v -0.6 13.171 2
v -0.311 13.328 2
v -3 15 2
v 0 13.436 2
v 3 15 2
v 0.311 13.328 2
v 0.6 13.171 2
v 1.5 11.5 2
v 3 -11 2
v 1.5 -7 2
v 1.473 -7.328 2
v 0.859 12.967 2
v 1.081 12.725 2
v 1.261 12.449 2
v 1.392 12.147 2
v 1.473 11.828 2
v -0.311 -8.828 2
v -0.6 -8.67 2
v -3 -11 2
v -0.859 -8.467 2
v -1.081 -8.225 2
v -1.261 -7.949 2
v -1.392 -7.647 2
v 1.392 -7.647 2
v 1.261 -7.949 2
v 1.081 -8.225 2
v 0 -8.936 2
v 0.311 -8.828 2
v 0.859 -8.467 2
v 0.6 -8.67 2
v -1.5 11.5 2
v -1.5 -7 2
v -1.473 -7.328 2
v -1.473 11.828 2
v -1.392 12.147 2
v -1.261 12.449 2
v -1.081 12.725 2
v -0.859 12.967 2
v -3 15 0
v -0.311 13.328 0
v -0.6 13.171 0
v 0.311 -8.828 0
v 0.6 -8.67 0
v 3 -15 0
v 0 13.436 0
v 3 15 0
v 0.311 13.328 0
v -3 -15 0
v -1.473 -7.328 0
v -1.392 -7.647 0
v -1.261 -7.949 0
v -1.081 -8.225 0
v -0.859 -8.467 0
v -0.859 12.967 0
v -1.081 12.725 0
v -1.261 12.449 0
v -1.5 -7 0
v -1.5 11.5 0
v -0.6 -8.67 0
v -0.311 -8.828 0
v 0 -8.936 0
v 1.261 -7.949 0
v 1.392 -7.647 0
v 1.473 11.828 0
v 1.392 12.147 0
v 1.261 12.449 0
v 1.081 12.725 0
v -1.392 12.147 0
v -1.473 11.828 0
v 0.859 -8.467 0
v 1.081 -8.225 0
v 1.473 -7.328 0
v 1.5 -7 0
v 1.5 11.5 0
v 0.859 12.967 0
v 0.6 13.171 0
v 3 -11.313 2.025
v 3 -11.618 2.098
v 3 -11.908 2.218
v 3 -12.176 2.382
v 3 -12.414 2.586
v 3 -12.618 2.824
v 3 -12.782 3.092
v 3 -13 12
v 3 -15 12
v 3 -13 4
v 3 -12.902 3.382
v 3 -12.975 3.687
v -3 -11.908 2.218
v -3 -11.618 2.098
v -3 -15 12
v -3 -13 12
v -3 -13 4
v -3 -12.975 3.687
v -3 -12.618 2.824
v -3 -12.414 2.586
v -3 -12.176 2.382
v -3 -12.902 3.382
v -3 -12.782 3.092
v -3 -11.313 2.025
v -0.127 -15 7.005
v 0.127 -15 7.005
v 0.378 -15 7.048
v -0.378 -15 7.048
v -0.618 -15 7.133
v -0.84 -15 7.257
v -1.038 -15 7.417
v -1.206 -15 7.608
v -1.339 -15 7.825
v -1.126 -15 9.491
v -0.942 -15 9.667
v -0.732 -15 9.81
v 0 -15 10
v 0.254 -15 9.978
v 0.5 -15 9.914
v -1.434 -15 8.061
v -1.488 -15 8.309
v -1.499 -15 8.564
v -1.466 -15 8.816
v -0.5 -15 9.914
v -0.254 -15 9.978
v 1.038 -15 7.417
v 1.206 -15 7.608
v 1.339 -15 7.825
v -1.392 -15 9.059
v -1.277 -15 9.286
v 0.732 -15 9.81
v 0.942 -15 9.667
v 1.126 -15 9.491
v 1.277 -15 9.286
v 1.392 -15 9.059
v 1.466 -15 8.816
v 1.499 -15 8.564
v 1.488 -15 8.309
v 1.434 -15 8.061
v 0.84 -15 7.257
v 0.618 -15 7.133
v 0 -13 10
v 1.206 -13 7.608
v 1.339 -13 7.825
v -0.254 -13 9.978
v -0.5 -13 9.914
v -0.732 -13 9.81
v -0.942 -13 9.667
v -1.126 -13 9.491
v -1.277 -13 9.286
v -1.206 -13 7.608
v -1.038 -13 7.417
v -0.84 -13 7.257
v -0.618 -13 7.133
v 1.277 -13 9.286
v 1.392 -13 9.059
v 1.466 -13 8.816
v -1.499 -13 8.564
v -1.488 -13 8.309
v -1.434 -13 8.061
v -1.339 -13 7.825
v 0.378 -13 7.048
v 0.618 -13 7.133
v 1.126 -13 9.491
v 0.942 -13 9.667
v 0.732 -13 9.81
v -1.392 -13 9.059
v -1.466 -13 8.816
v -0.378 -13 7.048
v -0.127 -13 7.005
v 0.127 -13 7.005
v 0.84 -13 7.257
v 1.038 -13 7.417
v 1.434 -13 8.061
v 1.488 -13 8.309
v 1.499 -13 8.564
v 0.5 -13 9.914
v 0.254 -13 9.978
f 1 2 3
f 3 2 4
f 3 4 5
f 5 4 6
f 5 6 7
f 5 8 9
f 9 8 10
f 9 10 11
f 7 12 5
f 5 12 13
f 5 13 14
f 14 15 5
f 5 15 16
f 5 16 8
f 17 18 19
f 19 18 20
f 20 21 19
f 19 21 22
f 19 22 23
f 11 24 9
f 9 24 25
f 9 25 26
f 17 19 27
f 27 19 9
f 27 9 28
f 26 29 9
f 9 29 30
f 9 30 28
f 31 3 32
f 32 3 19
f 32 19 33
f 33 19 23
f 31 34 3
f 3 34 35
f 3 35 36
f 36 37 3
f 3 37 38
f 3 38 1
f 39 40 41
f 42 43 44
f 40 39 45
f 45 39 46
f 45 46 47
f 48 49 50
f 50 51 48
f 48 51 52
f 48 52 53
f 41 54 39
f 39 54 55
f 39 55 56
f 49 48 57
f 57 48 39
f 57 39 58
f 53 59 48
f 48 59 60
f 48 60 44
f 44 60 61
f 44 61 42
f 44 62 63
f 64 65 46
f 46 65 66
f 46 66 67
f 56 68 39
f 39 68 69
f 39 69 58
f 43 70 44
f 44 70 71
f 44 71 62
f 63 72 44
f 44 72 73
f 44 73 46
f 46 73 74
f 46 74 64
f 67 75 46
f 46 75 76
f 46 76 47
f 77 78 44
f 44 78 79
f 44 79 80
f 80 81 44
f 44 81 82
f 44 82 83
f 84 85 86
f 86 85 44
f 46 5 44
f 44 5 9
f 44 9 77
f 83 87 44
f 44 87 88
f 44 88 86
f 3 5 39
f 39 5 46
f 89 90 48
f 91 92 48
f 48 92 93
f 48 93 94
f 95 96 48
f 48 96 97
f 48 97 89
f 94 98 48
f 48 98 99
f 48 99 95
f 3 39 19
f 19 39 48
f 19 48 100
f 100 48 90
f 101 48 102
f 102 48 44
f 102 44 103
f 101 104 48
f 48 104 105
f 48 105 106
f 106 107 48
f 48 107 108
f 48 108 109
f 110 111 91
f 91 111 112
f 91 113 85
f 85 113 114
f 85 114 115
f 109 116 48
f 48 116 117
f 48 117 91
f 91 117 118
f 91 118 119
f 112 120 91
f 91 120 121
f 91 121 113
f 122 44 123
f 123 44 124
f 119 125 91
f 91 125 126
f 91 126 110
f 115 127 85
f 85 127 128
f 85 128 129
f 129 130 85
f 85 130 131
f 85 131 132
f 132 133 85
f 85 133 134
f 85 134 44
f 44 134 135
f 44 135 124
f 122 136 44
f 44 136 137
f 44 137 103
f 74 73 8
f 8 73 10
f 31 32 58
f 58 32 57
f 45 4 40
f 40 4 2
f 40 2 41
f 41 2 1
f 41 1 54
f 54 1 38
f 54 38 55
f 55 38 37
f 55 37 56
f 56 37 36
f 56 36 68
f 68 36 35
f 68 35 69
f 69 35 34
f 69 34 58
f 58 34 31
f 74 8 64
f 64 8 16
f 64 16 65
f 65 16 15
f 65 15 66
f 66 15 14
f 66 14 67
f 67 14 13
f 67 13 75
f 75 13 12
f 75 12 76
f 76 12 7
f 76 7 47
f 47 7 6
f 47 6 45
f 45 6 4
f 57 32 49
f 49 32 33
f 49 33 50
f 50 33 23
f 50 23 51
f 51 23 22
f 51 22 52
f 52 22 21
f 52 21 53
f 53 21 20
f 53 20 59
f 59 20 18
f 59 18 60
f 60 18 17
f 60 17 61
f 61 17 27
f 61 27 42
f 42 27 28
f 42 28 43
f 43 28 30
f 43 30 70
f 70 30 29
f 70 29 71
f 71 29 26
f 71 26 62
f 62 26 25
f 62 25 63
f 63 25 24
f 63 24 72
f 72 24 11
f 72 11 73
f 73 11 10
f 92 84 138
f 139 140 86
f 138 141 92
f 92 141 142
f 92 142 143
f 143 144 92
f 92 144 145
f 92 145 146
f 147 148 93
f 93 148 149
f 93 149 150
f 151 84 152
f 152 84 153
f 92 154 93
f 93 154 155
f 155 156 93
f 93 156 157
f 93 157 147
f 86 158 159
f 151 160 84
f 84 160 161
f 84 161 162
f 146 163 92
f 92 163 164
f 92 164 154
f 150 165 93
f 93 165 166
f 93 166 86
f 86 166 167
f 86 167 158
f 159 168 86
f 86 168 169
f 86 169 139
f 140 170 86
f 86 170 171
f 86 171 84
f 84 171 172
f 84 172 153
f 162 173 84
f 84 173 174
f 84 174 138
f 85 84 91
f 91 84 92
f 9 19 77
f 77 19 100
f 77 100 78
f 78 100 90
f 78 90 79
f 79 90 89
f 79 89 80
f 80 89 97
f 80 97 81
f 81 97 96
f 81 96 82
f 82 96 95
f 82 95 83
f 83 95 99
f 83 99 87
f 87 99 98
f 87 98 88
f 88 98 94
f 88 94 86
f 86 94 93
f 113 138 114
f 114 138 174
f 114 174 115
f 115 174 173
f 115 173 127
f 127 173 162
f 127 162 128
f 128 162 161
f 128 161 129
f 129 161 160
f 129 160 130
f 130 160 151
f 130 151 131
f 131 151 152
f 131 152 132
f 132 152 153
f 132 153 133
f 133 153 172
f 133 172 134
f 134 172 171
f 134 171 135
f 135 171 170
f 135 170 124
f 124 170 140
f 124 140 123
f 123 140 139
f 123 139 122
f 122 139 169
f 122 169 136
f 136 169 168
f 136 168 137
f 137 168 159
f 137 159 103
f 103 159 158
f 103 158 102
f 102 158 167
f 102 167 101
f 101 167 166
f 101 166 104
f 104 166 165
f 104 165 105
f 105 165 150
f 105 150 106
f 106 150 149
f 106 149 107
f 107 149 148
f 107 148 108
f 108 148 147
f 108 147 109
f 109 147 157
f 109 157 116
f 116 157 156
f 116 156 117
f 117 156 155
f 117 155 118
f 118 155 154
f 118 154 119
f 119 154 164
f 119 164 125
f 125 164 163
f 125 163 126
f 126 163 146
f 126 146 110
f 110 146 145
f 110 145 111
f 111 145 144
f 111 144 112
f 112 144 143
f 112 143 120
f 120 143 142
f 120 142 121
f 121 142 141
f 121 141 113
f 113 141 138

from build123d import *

# Parameters (mm, degrees)
SKETCH1_W           = 6
SKETCH1_H           = 30
SKETCH1_W_2         = 3
SKETCH1_H_2         = 22.5
BOSS_EXTRUDE1_DEPTH = 2
FILLET1_R           = 2
SKETCH2_W           = 6
SKETCH2_H           = 2
BOSS_EXTRUDE2_DEPTH = 10
FILLET2_R           = 2
SKETCH3_R           = 1.5
CUT_EXTRUDE1_DEPTH  = 10


with BuildPart() as part:
    # Sketch1 → Boss-Extrude1 (new body)
    with BuildSketch(Plane.XY):
        Rectangle(SKETCH1_W, SKETCH1_H)
        with Locations((0, 2.25)):
            Rectangle(SKETCH1_W_2, SKETCH1_H_2, mode=Mode.SUBTRACT)
    extrude(amount=BOSS_EXTRUDE1_DEPTH)

    # Fillet1
    # the kernel refuses this fillet: 2 mm, written as the material it adds along each edge
    with BuildSketch(Plane(origin=(1.5, 13.5, 0), x_dir=(0, -1, 0), z_dir=(0, 0, 1)), Plane(origin=(1.5, -9, 0), x_dir=(-1, 0, 0), z_dir=(0, 0, 1)), Plane(origin=(-1.5, -9, 0), x_dir=(0, 1, 0), z_dir=(0, 0, 1))) as fillet1_piece_1:
        with BuildLine():
            CenterArc((FILLET1_R, -FILLET1_R), FILLET1_R, 90, 90)
            Line((0, -FILLET1_R), (0, 0))
            Line((0, 0), (FILLET1_R, 0))
        make_face()
    extrude(amount=2)
    with BuildSketch(Plane(origin=(-1.5, 13.5, 0), x_dir=(0, -1, 0), z_dir=(0, 0, 1))) as fillet1_piece_2:
        with BuildLine():
            CenterArc((FILLET1_R, FILLET1_R), FILLET1_R, 180, 90)
            Line((0, FILLET1_R), (0, 0))
            Line((0, 0), (FILLET1_R, 0))
        make_face()
    extrude(amount=2)

    # Sketch2 → Boss-Extrude2 (add)
    with BuildSketch(Plane.XY.offset(2)):
        with Locations((0, -14)):
            Rectangle(SKETCH2_W, SKETCH2_H)
    extrude(amount=BOSS_EXTRUDE2_DEPTH)

    # Fillet2
    fillet2_edges = [part.edges().sort_by_distance(p)[0] for p in [
        (0, -13, 2),
    ]]
    fillet(fillet2_edges, radius=FILLET2_R)

    # Sketch3 → Cut-Extrude1 (cut)
    with BuildSketch(Plane(origin=(0, -13, 0), x_dir=(1, 0, 0), z_dir=(0, 1, 0))):
        with Locations(Location((0, -8.5, 0), (0, 0, 270))):
            Circle(SKETCH3_R)
    extrude(amount=-CUT_EXTRUDE1_DEPTH, mode=Mode.SUBTRACT)


solid = part.part
